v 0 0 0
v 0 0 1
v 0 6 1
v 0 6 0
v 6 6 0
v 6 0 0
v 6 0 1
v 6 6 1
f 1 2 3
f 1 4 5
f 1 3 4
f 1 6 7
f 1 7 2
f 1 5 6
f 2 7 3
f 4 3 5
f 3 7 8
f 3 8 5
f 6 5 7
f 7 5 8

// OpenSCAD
/* Warning, this is a very basic generator with a lot of approximation 
input data : [VFBGA, CAB, 6x6x1mm, 96, , A, C04-21171A]
generated by com.zoubworld.electronics.cad.model3d.Basic
Date : Sun Feb 15 10:50:49 CET 2026
*/

//body
color("black")
translate([0,0,0])
cube([6.0,6.0,1.0], center=false);
